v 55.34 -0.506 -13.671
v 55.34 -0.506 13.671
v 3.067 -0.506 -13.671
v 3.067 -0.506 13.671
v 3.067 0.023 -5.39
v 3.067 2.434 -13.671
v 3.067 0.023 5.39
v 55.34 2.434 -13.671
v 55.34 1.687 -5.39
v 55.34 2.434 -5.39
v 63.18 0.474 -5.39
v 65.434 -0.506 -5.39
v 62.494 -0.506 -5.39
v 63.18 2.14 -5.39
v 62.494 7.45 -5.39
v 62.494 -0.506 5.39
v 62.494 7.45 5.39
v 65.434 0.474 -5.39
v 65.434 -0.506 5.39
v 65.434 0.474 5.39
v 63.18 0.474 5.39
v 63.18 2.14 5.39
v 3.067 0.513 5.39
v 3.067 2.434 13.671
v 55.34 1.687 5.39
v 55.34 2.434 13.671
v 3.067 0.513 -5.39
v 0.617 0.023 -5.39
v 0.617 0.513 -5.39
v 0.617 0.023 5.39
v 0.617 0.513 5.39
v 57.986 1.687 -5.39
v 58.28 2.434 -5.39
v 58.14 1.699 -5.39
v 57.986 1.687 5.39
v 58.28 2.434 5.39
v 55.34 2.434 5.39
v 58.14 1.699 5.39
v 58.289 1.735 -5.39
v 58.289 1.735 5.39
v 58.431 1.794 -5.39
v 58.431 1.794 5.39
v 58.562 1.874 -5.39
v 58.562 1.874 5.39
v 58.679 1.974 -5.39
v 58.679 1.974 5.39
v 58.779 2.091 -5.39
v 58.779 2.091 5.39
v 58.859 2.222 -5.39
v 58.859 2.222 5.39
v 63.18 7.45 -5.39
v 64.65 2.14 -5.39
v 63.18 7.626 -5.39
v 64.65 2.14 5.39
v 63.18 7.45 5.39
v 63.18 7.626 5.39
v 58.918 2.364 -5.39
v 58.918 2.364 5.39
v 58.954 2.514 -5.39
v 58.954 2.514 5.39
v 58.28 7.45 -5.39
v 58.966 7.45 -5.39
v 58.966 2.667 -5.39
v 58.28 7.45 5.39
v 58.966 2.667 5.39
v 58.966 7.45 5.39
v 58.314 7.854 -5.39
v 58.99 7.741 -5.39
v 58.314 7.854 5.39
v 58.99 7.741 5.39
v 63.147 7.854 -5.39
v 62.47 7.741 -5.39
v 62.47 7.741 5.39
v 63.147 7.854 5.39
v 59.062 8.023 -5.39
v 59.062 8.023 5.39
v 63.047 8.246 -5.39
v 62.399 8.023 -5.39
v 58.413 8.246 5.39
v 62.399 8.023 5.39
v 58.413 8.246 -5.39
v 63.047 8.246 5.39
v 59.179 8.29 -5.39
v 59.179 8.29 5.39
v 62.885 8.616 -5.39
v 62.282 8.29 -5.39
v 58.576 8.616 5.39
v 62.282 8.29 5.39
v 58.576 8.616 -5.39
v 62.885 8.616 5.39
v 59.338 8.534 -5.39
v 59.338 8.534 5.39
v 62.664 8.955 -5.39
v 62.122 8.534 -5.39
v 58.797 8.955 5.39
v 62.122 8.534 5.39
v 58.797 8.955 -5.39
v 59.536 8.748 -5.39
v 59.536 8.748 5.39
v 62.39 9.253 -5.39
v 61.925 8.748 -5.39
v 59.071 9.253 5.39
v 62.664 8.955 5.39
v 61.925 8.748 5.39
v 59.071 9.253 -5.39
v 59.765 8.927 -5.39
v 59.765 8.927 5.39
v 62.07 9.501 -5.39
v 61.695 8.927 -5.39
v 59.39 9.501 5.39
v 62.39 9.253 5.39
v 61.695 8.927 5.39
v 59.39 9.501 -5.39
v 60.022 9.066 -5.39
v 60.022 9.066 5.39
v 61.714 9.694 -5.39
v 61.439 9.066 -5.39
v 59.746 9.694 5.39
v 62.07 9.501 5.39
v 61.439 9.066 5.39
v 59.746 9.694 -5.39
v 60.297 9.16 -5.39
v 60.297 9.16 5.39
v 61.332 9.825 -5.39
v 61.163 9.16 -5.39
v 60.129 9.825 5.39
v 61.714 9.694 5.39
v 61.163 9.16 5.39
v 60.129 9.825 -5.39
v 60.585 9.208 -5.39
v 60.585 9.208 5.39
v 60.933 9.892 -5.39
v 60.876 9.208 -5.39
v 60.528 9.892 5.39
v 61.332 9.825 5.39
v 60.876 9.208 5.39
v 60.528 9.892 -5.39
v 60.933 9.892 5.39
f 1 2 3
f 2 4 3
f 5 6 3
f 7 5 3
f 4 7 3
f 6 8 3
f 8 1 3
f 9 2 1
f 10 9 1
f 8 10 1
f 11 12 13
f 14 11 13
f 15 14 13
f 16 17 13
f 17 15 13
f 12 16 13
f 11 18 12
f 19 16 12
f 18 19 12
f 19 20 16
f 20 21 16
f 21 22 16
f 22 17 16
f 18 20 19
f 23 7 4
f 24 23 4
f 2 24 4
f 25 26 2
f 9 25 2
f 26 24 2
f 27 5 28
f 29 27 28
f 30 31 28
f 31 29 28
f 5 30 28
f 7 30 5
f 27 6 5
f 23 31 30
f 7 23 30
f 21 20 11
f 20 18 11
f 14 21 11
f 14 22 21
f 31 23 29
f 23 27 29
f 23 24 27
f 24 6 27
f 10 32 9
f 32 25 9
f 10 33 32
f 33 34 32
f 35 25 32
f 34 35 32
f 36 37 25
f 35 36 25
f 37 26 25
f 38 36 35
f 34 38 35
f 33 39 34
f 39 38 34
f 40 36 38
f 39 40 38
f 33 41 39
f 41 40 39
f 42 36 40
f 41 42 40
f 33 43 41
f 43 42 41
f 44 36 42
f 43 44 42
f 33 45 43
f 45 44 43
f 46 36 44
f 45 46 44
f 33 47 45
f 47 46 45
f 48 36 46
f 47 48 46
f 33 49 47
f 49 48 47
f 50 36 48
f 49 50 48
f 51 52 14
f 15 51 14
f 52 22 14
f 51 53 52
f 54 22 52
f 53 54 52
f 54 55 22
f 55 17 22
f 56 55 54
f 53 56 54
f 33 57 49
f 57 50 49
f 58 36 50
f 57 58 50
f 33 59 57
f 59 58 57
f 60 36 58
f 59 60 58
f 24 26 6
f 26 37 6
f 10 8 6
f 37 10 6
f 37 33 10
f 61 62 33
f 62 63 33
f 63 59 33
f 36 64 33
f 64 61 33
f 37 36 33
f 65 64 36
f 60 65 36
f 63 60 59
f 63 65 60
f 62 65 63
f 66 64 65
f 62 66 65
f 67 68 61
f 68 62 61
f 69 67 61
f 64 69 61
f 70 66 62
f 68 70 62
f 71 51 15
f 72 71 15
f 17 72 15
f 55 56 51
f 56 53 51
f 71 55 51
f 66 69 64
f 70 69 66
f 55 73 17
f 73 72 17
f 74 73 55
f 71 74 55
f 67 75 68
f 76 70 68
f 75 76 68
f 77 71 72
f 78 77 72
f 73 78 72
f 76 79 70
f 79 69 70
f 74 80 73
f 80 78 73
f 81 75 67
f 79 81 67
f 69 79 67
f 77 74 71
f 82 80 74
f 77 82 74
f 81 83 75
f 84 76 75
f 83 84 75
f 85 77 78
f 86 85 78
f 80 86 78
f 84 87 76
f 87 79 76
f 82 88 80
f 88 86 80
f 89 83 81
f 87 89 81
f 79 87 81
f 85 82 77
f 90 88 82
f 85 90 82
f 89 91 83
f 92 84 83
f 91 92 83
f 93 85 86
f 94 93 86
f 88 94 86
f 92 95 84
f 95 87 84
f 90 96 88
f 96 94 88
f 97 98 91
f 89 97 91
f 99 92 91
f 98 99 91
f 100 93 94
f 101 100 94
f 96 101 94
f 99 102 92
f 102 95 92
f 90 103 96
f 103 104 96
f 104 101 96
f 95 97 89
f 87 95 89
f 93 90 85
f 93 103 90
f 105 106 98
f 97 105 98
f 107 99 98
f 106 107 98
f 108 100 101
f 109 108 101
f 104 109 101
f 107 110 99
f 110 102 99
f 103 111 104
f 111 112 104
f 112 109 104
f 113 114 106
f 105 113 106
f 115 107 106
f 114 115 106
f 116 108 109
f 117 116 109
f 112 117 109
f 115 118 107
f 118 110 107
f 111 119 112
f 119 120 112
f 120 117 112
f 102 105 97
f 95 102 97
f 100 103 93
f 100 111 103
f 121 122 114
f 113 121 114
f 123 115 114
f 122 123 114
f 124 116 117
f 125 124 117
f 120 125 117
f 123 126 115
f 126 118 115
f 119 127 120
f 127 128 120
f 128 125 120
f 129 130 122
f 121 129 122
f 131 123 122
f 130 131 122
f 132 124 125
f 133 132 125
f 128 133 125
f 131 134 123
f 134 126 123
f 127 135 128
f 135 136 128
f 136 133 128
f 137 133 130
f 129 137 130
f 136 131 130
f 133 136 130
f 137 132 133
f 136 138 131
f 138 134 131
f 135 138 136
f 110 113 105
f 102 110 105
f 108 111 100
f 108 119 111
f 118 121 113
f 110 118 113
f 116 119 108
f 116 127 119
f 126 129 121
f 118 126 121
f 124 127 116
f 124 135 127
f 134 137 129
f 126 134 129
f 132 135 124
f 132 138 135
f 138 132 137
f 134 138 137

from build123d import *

# Parameters (mm, degrees)
BOSS_EXTRUDE1_DEPTH = 5.5
SKETCH2_W           = 53.34
SKETCH2_H           = 3
BOSS_EXTRUDE2_DEPTH = 13.95
SCALE1_SCALE        = 0.98


with BuildPart() as part:
    # Sketch1 → Boss-Extrude1 (new, symmetric)
    with BuildSketch(Plane.XY):
        with BuildLine():
            Line((0, 0), (2.5, 0))
            Line((2.5, 0), (2.5, -0.54))
            Line((2.5, -0.54), (55.84, -0.54))
            Line((55.84, -0.54), (55.84, 1.698))
            Line((55.84, 1.698), (57.84, 1.698))
            Line((57.84, 1.698), (58.54, 1.698))
            ThreePointArc((58.54, 1.698), (59.247106781, 1.990893219), (59.54, 2.698))
            Line((59.54, 2.698), (59.54, 7.579046555))
            ThreePointArc((59.54, 7.579046555), (61.34, 9.379046555), (63.14, 7.579046555))
            Line((63.14, 7.579046555), (63.14, -0.54))
            Line((63.14, -0.54), (66.14, -0.54))
            Line((66.14, -0.54), (66.14, 0.46))
            Line((66.14, 0.46), (63.84, 0.46))
            Line((63.84, 0.46), (63.84, 2.16))
            Line((63.84, 2.16), (65.34, 2.16))
            Line((65.34, 2.16), (63.84, 7.758076211))
            Line((63.84, 7.758076211), (63.84, 7.579046555))
            ThreePointArc((63.84, 7.579046555), (61.34, 10.079046555), (58.84, 7.579046555))
            Line((58.84, 7.579046555), (58.84, 2.46))
            Line((58.84, 2.46), (55.84, 2.46))
            Line((55.84, 2.46), (2.5, 2.46))
            Line((2.5, 2.46), (2.5, 0.5))
            Line((2.5, 0.5), (0, 0.5))
            Line((0, 0.5), (0, 0))
        make_face()
    extrude(amount=BOSS_EXTRUDE1_DEPTH, both=True)

    # Sketch2 → Boss-Extrude2 (add, symmetric)
    with BuildSketch(Plane.XY):
        with Locations((29.17, 0.96)):
            Rectangle(SKETCH2_W, SKETCH2_H)
    extrude(amount=BOSS_EXTRUDE2_DEPTH, both=True)


with BuildPart() as part_1:
    # Scale1: scaled about (30.852442752, 1.144909894, 0)
    add(part.part.scale(SCALE1_SCALE).moved(Location((0.617048855, 0.022898198, 0))))


solid = part_1.part
